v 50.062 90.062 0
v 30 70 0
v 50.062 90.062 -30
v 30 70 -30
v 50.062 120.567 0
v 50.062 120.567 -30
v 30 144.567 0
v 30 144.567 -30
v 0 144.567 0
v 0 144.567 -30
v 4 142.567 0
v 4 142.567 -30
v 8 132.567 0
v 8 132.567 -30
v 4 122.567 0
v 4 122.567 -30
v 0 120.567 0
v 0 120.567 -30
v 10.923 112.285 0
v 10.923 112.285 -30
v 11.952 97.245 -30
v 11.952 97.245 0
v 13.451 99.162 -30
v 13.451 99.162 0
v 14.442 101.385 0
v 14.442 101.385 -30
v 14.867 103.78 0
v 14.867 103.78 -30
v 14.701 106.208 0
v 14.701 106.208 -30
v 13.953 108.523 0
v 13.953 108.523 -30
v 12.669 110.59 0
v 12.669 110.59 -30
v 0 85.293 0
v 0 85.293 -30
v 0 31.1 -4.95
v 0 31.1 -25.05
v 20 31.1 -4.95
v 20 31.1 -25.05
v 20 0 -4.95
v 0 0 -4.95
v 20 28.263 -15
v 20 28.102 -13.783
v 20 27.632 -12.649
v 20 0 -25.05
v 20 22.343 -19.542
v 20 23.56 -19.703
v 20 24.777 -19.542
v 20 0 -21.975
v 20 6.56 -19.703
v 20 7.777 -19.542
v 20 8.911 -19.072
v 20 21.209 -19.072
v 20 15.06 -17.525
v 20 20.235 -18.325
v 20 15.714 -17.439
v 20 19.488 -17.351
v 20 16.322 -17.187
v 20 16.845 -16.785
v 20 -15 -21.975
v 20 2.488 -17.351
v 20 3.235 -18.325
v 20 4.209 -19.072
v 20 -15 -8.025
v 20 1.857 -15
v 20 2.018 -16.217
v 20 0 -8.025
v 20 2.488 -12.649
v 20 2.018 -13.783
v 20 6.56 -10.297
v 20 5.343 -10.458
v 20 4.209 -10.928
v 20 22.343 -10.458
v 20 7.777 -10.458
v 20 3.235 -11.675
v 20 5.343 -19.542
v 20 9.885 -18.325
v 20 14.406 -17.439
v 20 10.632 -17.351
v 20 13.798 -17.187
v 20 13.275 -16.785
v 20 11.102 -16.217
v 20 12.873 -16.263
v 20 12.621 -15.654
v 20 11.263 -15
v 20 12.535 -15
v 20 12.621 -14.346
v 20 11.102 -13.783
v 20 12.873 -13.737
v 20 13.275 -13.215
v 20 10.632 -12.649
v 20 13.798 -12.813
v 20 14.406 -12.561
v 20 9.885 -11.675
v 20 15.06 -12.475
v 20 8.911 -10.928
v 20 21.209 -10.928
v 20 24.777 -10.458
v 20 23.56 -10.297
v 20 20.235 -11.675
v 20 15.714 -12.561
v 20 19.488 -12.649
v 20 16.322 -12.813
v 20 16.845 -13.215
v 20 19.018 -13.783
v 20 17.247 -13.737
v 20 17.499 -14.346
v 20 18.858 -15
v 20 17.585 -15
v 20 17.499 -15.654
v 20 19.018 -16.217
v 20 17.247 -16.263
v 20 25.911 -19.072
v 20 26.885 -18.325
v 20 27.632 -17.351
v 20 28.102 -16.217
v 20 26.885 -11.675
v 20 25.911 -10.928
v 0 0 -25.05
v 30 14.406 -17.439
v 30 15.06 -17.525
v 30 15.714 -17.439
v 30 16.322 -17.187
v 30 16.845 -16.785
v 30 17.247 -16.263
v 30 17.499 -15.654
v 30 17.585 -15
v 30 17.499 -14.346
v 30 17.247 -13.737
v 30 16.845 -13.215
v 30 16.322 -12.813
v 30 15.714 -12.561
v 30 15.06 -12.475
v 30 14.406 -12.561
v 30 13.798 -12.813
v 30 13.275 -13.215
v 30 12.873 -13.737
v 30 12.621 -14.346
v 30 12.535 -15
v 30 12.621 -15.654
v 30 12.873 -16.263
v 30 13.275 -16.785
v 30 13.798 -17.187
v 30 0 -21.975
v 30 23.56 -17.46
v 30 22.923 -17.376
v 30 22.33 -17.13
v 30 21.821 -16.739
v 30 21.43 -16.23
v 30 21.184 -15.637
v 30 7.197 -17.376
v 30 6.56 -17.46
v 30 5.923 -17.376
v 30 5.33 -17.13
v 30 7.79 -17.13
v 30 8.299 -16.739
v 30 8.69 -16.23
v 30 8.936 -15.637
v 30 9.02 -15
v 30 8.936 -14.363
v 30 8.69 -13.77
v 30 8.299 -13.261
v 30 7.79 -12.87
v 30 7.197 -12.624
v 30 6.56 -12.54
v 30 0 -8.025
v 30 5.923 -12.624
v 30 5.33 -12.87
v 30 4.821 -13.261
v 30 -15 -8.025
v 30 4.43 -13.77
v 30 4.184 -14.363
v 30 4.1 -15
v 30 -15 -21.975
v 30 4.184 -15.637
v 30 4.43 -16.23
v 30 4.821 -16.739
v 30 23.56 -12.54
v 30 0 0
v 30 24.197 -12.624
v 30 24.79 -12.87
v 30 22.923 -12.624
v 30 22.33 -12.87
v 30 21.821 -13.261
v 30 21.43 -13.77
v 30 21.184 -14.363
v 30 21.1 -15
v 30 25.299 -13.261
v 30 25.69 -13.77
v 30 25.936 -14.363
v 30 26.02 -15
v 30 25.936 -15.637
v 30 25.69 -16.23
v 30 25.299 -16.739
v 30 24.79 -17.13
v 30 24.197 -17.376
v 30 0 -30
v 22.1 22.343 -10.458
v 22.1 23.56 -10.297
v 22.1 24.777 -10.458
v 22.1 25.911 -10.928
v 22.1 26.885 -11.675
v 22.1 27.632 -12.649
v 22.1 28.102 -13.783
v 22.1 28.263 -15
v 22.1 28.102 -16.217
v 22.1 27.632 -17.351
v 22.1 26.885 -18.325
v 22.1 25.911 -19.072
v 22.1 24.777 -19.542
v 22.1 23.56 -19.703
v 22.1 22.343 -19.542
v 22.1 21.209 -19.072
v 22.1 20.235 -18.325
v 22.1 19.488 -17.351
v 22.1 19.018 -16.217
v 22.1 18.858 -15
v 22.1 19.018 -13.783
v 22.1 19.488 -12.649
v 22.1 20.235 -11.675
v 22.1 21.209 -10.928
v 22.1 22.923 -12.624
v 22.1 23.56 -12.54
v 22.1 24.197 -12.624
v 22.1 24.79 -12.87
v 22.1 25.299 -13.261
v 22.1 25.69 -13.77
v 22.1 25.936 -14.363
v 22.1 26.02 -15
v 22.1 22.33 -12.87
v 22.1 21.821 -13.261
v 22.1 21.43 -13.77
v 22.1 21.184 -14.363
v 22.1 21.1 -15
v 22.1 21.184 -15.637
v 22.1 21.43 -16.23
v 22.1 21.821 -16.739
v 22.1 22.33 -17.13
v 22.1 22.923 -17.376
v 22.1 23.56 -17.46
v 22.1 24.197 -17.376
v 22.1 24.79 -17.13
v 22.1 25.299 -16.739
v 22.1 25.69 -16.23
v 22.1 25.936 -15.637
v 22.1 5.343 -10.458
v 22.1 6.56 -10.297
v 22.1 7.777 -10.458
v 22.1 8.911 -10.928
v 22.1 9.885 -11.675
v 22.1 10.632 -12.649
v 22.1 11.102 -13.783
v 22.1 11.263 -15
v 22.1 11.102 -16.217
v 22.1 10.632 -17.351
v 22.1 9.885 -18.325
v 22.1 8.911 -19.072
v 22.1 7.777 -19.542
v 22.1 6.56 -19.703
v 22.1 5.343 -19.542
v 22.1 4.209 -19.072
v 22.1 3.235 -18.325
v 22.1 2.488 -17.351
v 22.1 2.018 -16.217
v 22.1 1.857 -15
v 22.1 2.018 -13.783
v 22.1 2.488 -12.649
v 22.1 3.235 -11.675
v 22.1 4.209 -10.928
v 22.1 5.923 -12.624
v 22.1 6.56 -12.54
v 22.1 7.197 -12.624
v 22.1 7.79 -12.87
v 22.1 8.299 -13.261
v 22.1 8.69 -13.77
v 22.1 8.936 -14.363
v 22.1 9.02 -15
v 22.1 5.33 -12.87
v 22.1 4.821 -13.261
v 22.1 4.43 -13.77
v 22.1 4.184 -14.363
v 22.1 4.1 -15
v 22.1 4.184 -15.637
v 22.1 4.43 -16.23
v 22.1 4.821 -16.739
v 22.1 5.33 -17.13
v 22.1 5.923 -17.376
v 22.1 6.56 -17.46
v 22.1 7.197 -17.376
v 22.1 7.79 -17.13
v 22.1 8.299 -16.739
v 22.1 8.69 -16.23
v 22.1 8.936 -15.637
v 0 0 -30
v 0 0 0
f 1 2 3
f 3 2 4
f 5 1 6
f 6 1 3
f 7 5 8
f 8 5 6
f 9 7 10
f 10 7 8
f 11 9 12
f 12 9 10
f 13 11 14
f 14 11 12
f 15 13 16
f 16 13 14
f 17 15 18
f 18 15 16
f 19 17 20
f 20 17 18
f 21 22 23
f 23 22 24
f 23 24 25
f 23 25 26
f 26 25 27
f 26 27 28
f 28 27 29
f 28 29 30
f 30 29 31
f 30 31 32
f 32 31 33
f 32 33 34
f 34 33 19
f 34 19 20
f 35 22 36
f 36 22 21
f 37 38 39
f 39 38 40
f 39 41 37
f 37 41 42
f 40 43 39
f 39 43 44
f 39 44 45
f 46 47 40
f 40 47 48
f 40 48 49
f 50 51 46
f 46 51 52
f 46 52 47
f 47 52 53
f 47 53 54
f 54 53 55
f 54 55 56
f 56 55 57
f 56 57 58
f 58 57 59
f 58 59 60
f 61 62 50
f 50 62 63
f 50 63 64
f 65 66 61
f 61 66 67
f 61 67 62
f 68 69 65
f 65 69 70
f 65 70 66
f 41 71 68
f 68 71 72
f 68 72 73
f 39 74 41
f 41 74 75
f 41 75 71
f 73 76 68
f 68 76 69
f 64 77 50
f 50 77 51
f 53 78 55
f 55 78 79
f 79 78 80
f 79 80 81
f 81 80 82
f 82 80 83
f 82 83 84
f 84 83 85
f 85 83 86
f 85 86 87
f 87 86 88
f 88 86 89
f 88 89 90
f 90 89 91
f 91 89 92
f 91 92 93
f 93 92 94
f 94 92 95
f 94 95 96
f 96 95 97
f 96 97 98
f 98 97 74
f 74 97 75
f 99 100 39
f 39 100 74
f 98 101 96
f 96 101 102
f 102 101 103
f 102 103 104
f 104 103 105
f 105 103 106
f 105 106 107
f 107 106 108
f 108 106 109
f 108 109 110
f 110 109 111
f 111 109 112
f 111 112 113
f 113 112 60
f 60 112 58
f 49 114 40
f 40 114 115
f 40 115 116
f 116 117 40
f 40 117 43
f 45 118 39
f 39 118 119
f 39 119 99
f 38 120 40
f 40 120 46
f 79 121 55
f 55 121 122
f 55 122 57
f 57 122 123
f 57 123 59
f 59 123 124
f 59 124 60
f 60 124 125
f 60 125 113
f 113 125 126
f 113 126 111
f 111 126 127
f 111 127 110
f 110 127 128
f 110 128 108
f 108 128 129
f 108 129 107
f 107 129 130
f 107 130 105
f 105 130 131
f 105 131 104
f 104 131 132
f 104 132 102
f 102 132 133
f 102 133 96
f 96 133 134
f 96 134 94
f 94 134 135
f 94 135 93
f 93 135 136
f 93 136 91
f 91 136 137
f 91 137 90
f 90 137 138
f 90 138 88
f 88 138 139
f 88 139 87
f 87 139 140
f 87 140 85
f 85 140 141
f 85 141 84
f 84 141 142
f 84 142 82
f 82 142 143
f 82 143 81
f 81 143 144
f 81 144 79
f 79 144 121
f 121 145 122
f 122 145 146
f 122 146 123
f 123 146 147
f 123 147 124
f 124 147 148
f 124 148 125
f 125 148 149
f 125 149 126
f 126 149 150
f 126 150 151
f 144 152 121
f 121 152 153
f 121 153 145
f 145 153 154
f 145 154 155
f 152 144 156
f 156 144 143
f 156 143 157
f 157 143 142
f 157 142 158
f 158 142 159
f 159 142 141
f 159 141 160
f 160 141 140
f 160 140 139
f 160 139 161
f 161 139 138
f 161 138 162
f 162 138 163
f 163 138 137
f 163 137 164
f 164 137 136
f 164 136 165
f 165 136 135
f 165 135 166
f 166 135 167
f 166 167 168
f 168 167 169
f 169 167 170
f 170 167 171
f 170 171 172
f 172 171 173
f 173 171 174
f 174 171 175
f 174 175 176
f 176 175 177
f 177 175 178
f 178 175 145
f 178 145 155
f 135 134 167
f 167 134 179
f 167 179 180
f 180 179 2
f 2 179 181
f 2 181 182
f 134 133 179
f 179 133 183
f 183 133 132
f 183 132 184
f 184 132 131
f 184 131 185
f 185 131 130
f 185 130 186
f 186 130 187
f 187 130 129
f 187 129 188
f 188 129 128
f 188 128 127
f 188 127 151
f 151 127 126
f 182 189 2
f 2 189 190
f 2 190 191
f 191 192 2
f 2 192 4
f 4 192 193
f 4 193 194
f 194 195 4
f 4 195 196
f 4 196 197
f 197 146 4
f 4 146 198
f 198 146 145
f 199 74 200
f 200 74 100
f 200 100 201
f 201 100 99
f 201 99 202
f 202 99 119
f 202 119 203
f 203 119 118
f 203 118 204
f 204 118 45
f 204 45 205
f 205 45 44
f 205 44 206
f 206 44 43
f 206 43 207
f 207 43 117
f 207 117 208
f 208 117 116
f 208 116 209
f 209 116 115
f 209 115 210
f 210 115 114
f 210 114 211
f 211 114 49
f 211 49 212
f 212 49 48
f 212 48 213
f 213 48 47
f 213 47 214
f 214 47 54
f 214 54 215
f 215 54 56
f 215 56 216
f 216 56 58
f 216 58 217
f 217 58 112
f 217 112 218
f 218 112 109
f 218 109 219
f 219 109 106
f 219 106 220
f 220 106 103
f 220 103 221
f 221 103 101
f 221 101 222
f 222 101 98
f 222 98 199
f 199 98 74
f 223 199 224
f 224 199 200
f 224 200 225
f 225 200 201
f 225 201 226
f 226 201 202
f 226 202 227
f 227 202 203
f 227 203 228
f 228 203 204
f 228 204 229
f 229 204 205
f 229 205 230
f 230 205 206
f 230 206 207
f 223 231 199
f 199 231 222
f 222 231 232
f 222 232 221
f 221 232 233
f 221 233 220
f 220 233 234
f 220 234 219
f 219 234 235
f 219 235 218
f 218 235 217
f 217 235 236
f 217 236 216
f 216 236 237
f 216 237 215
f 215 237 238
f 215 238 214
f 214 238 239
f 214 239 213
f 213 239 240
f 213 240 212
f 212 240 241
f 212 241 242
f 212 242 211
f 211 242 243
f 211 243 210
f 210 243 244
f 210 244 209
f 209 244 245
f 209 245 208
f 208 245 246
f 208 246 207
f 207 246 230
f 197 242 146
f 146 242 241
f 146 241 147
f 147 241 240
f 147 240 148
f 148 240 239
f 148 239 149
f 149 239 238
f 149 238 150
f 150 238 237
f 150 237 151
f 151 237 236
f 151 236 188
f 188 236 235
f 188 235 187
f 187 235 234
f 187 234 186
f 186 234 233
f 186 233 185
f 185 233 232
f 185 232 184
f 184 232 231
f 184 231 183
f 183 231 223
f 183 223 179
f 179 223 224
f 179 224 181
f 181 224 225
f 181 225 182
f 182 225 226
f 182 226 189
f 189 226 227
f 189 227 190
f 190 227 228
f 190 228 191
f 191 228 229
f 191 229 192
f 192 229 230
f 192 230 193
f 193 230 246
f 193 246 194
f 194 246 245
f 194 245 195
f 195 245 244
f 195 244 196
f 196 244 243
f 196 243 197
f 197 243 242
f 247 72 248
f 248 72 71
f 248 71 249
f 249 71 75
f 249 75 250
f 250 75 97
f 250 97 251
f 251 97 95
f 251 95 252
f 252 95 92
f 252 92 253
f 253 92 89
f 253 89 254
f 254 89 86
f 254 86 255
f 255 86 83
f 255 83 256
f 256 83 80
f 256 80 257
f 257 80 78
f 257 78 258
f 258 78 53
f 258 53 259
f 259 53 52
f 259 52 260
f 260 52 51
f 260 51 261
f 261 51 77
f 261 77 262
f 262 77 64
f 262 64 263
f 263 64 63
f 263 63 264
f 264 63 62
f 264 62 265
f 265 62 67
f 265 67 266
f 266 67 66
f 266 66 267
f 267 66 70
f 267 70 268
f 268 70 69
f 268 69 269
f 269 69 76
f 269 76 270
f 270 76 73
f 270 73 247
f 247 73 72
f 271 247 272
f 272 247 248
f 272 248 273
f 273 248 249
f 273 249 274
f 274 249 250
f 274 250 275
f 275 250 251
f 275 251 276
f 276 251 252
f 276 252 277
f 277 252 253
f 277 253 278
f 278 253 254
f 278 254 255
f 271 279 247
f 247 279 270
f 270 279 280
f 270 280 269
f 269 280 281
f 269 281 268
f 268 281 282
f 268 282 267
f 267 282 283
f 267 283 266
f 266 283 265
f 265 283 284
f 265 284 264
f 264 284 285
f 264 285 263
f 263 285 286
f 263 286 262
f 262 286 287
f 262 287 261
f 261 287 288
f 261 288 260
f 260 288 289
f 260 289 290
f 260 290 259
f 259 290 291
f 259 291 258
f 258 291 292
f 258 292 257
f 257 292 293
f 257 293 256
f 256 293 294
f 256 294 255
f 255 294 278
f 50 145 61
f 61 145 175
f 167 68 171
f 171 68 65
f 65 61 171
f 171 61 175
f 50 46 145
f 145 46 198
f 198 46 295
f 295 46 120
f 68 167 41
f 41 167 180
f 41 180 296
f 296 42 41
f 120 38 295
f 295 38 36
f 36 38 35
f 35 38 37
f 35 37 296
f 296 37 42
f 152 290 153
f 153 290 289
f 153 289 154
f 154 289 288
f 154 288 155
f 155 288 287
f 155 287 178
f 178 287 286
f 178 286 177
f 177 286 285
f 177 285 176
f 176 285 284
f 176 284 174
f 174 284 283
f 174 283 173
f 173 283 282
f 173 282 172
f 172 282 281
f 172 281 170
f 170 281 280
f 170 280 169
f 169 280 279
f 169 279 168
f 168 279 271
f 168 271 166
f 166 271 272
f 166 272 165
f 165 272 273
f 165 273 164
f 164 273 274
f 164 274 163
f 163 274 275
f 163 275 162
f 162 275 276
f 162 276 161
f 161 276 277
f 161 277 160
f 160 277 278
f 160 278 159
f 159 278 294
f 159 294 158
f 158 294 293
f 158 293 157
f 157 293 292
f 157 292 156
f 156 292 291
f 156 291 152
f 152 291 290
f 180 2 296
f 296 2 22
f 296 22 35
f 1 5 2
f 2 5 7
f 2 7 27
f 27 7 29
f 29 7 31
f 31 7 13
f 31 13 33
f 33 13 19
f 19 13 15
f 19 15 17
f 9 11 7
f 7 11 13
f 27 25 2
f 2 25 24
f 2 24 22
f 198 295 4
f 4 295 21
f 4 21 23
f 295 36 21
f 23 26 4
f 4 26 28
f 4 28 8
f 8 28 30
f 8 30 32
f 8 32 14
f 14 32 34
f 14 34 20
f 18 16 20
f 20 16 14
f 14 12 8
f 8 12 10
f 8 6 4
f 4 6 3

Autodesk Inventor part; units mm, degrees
ref_plane "YZ Plane" through (0, 0, 0) normal (1, 0, 0) x (0, 1, 0)
ref_plane "XZ Plane" through (0, 0, 0) normal (0, 1, 0) x (-1, 0, 0)
ref_plane "XY Plane" through (0, 0, 0) normal (0, 0, 1) x (1, 0, 0)
sketch "Sketch1" plane through (0, 0, 0) normal (0, 0, 1) x (1, 0, 0)
  line L0 (0, 0) -> (25, 0)
  line L1 (25, 0) -> (25, 40)
  line L2 (25, 40) -> (0, 40)
  line L3 (0, 40) -> (0, 0)
  dimension "d1" = 25
  dimension "d2" = 40
  dimension "d3" = 25
extrude "Extrusion1" add sketch "Sketch1" against normal blind 30
sketch "Sketch2" plane through (25, 0, 0) normal (1, 0, 0) x (0, 0, -1)
  line L0 (0, 0) -> (30, 0) projected
  circle A0 centre (15, 6.56) radius 2.46
extrude "Extrusion2" cut sketch "Sketch2" against normal blind 30
sketch "Sketch3" plane through (0, 0, 0) normal (-1, 0, 0) x (0, 0, 1)
  line L0 (0, 0) -> (-30, 0) projected
  line L1 (-25.05, 0) -> (-4.95, 0)
  line L2 (-4.95, 0) -> (-4.95, 33.12)
  line L3 (-4.95, 33.12) -> (-25.05, 33.12)
  line L4 (-25.05, 33.12) -> (-25.05, 0)
  dimension "d11" = 20.1
extrude "Extrusion3" cut sketch "Sketch3" against normal blind 20
sketch "Sketch4" plane through (0, 0, 0) normal (0, -1, 0) x (1, 0, 0)
  line L0 (20, -4.95) -> (20, -25.05) projected
  line L1 (20, -15) -> (25, -15)
  line L2 (25, 0) -> (25, -30) projected
  line L3 (20, -8.025) -> (25, -8.025)
  line L4 (25, -8.025) -> (25, -21.975)
  line L5 (25, -21.975) -> (20, -21.975)
  line L6 (20, -21.975) -> (20, -8.025)
  line L7 (20, -8.025) -> (25, -21.975) construction
  line L8 (25, -8.025) -> (20, -21.975) construction
  line L9 (25, -12.54) -> (25, -17.46) projected
  point P0 (0, 0)
  point P1 (22.5, -15)
  dimension "d14" = 13.95
extrude "Extrusion4" add sketch "Sketch4" along normal blind 15
sketch "Sketch5" plane through (20, 0, 0) normal (-1, 0, 0) x (0, 0, 1)
  circle A0 centre (-15, 6.56) radius 2.46 projected
  circle A1 centre (-15, 6.56) radius 4.7025
  circle A2 centre (-15, 6.56) radius 2.46 projected
  circle A3 centre (-15, 6.56) radius 2.46
  point P0 (0, 0)
  dimension "d17" = 9.405
extrude "Extrusion5" cut sketch "Sketch5" against normal blind 2.1
sketch "Sketch6" plane through (25, 0, 0) normal (1, 0, 0) x (0, 0, -1)
  circle A0 centre (15, 6.56) radius 4.7025 projected
  line L0 (15, 6.56) -> (15, 23.56)
  circle A1 centre (15, 23.56) radius 2.46
  point P0 (0, 0)
  dimension "d20" = 17
  dimension "d21" = 4.92
extrude "Extrusion6" cut sketch "Sketch6" against normal blind 10 contours A1
sketch "Sketch7" plane through (20, 0, 0) normal (-1, 0, 0) x (0, 0, 1)
  circle A0 centre (-15, 23.56) radius 2.46 projected
  circle A1 centre (-15, 23.56) radius 4.7025
  point P0 (0, 0)
  dimension "d24" = 9.405
extrude "Extrusion7" cut sketch "Sketch7" against normal blind 2.1
sketch "Sketch9" plane through (25, 0, 0) normal (1, 0, 0) x (0, 0, -1)
  circle A0 centre (15, 6.56) radius 2.46 projected
  circle A1 centre (15, 6.56) radius 2.46
  circle A2 centre (15, 23.56) radius 2.46 projected
  circle A3 centre (15, 23.56) radius 2.46
  line L0 (30, 40) -> (30, 0) projected
  line L1 (30, 0) -> (30, 40)
  line L2 (30, 40) -> (0, 40)
  line L3 (0, 40) -> (0, 0)
  line L4 (0, 0) -> (8.025, 0) projected
  line L5 (21.975, 0) -> (21.975, -15)
  line L6 (21.975, -15) -> (8.025, -15)
  line L7 (8.025, -15) -> (8.025, 0)
  line L8 (0, 0) -> (8.025, 0)
  line L9 (21.975, 0) -> (30, 0)
extrude "Extrusion8" add sketch "Sketch9" along normal blind 5
sketch "Sketch10" plane through (0, 40, 0) normal (0, 1, 0) x (1, 0, 0)
  line L0 (0, 30) -> (30, 30) projected
  line L1 (30, 0) -> (0, 0) projected
  line L2 (0, 30) -> (30, 30)
  line L3 (30, 30) -> (30, 0)
  line L4 (30, 0) -> (0, 0)
  line L5 (0, 0) -> (0, 30)
extrude "Extrusion9" add sketch "Sketch10" along normal blind 30
sketch "Sketch12" plane through (30, 0, 0) normal (1, 0, 0) x (0, 0, -1)
  circle A0 centre (15, 6.56) radius 2.46 projected
  line L0 (15, 6.56) -> (15, 15.06)
  circle A1 centre (15, 15.06) radius 2.525
  point P0 (0, 0)
  dimension "d31" = 8.5
  dimension "d33" = 5.05
extrude "Extrusion10" cut sketch "Sketch12" against normal blind 30 contours A1
sketch "Sketch15" plane through (0, 0, -25.05) normal (-1, 0, 0) x (0, 0, 1)
  line L0 (0, 33.12) -> (20.1, 33.12) projected
  line L1 (20.1, 33.12) -> (20.1, 0) projected
  line L2 (0, 33.12) -> (20.1, 33.12)
  line L3 (20.1, 33.12) -> (20.1, 31.1)
  line L4 (20.1, 31.1) -> (0, 31.1)
  line L5 (0, 31.1) -> (0, 33.12)
  point P0 (25.05, 0)
  dimension "d57" = 2.02
extrude "Extrusion13" add sketch "Sketch15" against normal blind 20
sketch "Sketch17" plane through (0, 0, 0) normal (0, 0, 1) x (1, 0, 0)
  line L0 (0, 70) -> (30, 70) projected
  line L1 (30, 70) -> (50.0622, 90.0622)
  line L2 (30, 70) -> (80, 70) construction
  line L3 (11.9522, 97.2454) -> (0, 85.2932)
  line L4 (0, 70) -> (0, 85.2932)
  line L5 (0, 70) -> (0, 0) projected
  line L6 (0, 70) -> (30, 70)
  line L7 (10.923, 112.2849) -> (0, 120.567)
  line L8 (50.0622, 105.3553) -> (50.0622, 120.567)
  line L9 (50.0622, 105.3553) -> (50.0622, 90.0622)
  arc A0 (11.9522, 97.2454) -> (10.923, 112.2849) centre (4.8811, 104.3165) ccw
  line L10 (0, 144.567) -> (30, 144.567)
  line L11 (30, 144.567) -> (50.0622, 120.567)
  line L12 (4, 142.567) -> (0, 144.567)
  line L13 (4, 122.567) -> (0, 120.567)
  line L14 (4, 122.567) -> (8, 132.567)
  line L15 (8, 132.567) -> (4, 142.567)
  dimension "d61" = 45
  dimension "d62" = 32.0271
  dimension "d72" = 10
extrude "Extrusion14" add sketch "Sketch17" against normal blind 30
properties part number "rec_c_20mm_x_30mm"
